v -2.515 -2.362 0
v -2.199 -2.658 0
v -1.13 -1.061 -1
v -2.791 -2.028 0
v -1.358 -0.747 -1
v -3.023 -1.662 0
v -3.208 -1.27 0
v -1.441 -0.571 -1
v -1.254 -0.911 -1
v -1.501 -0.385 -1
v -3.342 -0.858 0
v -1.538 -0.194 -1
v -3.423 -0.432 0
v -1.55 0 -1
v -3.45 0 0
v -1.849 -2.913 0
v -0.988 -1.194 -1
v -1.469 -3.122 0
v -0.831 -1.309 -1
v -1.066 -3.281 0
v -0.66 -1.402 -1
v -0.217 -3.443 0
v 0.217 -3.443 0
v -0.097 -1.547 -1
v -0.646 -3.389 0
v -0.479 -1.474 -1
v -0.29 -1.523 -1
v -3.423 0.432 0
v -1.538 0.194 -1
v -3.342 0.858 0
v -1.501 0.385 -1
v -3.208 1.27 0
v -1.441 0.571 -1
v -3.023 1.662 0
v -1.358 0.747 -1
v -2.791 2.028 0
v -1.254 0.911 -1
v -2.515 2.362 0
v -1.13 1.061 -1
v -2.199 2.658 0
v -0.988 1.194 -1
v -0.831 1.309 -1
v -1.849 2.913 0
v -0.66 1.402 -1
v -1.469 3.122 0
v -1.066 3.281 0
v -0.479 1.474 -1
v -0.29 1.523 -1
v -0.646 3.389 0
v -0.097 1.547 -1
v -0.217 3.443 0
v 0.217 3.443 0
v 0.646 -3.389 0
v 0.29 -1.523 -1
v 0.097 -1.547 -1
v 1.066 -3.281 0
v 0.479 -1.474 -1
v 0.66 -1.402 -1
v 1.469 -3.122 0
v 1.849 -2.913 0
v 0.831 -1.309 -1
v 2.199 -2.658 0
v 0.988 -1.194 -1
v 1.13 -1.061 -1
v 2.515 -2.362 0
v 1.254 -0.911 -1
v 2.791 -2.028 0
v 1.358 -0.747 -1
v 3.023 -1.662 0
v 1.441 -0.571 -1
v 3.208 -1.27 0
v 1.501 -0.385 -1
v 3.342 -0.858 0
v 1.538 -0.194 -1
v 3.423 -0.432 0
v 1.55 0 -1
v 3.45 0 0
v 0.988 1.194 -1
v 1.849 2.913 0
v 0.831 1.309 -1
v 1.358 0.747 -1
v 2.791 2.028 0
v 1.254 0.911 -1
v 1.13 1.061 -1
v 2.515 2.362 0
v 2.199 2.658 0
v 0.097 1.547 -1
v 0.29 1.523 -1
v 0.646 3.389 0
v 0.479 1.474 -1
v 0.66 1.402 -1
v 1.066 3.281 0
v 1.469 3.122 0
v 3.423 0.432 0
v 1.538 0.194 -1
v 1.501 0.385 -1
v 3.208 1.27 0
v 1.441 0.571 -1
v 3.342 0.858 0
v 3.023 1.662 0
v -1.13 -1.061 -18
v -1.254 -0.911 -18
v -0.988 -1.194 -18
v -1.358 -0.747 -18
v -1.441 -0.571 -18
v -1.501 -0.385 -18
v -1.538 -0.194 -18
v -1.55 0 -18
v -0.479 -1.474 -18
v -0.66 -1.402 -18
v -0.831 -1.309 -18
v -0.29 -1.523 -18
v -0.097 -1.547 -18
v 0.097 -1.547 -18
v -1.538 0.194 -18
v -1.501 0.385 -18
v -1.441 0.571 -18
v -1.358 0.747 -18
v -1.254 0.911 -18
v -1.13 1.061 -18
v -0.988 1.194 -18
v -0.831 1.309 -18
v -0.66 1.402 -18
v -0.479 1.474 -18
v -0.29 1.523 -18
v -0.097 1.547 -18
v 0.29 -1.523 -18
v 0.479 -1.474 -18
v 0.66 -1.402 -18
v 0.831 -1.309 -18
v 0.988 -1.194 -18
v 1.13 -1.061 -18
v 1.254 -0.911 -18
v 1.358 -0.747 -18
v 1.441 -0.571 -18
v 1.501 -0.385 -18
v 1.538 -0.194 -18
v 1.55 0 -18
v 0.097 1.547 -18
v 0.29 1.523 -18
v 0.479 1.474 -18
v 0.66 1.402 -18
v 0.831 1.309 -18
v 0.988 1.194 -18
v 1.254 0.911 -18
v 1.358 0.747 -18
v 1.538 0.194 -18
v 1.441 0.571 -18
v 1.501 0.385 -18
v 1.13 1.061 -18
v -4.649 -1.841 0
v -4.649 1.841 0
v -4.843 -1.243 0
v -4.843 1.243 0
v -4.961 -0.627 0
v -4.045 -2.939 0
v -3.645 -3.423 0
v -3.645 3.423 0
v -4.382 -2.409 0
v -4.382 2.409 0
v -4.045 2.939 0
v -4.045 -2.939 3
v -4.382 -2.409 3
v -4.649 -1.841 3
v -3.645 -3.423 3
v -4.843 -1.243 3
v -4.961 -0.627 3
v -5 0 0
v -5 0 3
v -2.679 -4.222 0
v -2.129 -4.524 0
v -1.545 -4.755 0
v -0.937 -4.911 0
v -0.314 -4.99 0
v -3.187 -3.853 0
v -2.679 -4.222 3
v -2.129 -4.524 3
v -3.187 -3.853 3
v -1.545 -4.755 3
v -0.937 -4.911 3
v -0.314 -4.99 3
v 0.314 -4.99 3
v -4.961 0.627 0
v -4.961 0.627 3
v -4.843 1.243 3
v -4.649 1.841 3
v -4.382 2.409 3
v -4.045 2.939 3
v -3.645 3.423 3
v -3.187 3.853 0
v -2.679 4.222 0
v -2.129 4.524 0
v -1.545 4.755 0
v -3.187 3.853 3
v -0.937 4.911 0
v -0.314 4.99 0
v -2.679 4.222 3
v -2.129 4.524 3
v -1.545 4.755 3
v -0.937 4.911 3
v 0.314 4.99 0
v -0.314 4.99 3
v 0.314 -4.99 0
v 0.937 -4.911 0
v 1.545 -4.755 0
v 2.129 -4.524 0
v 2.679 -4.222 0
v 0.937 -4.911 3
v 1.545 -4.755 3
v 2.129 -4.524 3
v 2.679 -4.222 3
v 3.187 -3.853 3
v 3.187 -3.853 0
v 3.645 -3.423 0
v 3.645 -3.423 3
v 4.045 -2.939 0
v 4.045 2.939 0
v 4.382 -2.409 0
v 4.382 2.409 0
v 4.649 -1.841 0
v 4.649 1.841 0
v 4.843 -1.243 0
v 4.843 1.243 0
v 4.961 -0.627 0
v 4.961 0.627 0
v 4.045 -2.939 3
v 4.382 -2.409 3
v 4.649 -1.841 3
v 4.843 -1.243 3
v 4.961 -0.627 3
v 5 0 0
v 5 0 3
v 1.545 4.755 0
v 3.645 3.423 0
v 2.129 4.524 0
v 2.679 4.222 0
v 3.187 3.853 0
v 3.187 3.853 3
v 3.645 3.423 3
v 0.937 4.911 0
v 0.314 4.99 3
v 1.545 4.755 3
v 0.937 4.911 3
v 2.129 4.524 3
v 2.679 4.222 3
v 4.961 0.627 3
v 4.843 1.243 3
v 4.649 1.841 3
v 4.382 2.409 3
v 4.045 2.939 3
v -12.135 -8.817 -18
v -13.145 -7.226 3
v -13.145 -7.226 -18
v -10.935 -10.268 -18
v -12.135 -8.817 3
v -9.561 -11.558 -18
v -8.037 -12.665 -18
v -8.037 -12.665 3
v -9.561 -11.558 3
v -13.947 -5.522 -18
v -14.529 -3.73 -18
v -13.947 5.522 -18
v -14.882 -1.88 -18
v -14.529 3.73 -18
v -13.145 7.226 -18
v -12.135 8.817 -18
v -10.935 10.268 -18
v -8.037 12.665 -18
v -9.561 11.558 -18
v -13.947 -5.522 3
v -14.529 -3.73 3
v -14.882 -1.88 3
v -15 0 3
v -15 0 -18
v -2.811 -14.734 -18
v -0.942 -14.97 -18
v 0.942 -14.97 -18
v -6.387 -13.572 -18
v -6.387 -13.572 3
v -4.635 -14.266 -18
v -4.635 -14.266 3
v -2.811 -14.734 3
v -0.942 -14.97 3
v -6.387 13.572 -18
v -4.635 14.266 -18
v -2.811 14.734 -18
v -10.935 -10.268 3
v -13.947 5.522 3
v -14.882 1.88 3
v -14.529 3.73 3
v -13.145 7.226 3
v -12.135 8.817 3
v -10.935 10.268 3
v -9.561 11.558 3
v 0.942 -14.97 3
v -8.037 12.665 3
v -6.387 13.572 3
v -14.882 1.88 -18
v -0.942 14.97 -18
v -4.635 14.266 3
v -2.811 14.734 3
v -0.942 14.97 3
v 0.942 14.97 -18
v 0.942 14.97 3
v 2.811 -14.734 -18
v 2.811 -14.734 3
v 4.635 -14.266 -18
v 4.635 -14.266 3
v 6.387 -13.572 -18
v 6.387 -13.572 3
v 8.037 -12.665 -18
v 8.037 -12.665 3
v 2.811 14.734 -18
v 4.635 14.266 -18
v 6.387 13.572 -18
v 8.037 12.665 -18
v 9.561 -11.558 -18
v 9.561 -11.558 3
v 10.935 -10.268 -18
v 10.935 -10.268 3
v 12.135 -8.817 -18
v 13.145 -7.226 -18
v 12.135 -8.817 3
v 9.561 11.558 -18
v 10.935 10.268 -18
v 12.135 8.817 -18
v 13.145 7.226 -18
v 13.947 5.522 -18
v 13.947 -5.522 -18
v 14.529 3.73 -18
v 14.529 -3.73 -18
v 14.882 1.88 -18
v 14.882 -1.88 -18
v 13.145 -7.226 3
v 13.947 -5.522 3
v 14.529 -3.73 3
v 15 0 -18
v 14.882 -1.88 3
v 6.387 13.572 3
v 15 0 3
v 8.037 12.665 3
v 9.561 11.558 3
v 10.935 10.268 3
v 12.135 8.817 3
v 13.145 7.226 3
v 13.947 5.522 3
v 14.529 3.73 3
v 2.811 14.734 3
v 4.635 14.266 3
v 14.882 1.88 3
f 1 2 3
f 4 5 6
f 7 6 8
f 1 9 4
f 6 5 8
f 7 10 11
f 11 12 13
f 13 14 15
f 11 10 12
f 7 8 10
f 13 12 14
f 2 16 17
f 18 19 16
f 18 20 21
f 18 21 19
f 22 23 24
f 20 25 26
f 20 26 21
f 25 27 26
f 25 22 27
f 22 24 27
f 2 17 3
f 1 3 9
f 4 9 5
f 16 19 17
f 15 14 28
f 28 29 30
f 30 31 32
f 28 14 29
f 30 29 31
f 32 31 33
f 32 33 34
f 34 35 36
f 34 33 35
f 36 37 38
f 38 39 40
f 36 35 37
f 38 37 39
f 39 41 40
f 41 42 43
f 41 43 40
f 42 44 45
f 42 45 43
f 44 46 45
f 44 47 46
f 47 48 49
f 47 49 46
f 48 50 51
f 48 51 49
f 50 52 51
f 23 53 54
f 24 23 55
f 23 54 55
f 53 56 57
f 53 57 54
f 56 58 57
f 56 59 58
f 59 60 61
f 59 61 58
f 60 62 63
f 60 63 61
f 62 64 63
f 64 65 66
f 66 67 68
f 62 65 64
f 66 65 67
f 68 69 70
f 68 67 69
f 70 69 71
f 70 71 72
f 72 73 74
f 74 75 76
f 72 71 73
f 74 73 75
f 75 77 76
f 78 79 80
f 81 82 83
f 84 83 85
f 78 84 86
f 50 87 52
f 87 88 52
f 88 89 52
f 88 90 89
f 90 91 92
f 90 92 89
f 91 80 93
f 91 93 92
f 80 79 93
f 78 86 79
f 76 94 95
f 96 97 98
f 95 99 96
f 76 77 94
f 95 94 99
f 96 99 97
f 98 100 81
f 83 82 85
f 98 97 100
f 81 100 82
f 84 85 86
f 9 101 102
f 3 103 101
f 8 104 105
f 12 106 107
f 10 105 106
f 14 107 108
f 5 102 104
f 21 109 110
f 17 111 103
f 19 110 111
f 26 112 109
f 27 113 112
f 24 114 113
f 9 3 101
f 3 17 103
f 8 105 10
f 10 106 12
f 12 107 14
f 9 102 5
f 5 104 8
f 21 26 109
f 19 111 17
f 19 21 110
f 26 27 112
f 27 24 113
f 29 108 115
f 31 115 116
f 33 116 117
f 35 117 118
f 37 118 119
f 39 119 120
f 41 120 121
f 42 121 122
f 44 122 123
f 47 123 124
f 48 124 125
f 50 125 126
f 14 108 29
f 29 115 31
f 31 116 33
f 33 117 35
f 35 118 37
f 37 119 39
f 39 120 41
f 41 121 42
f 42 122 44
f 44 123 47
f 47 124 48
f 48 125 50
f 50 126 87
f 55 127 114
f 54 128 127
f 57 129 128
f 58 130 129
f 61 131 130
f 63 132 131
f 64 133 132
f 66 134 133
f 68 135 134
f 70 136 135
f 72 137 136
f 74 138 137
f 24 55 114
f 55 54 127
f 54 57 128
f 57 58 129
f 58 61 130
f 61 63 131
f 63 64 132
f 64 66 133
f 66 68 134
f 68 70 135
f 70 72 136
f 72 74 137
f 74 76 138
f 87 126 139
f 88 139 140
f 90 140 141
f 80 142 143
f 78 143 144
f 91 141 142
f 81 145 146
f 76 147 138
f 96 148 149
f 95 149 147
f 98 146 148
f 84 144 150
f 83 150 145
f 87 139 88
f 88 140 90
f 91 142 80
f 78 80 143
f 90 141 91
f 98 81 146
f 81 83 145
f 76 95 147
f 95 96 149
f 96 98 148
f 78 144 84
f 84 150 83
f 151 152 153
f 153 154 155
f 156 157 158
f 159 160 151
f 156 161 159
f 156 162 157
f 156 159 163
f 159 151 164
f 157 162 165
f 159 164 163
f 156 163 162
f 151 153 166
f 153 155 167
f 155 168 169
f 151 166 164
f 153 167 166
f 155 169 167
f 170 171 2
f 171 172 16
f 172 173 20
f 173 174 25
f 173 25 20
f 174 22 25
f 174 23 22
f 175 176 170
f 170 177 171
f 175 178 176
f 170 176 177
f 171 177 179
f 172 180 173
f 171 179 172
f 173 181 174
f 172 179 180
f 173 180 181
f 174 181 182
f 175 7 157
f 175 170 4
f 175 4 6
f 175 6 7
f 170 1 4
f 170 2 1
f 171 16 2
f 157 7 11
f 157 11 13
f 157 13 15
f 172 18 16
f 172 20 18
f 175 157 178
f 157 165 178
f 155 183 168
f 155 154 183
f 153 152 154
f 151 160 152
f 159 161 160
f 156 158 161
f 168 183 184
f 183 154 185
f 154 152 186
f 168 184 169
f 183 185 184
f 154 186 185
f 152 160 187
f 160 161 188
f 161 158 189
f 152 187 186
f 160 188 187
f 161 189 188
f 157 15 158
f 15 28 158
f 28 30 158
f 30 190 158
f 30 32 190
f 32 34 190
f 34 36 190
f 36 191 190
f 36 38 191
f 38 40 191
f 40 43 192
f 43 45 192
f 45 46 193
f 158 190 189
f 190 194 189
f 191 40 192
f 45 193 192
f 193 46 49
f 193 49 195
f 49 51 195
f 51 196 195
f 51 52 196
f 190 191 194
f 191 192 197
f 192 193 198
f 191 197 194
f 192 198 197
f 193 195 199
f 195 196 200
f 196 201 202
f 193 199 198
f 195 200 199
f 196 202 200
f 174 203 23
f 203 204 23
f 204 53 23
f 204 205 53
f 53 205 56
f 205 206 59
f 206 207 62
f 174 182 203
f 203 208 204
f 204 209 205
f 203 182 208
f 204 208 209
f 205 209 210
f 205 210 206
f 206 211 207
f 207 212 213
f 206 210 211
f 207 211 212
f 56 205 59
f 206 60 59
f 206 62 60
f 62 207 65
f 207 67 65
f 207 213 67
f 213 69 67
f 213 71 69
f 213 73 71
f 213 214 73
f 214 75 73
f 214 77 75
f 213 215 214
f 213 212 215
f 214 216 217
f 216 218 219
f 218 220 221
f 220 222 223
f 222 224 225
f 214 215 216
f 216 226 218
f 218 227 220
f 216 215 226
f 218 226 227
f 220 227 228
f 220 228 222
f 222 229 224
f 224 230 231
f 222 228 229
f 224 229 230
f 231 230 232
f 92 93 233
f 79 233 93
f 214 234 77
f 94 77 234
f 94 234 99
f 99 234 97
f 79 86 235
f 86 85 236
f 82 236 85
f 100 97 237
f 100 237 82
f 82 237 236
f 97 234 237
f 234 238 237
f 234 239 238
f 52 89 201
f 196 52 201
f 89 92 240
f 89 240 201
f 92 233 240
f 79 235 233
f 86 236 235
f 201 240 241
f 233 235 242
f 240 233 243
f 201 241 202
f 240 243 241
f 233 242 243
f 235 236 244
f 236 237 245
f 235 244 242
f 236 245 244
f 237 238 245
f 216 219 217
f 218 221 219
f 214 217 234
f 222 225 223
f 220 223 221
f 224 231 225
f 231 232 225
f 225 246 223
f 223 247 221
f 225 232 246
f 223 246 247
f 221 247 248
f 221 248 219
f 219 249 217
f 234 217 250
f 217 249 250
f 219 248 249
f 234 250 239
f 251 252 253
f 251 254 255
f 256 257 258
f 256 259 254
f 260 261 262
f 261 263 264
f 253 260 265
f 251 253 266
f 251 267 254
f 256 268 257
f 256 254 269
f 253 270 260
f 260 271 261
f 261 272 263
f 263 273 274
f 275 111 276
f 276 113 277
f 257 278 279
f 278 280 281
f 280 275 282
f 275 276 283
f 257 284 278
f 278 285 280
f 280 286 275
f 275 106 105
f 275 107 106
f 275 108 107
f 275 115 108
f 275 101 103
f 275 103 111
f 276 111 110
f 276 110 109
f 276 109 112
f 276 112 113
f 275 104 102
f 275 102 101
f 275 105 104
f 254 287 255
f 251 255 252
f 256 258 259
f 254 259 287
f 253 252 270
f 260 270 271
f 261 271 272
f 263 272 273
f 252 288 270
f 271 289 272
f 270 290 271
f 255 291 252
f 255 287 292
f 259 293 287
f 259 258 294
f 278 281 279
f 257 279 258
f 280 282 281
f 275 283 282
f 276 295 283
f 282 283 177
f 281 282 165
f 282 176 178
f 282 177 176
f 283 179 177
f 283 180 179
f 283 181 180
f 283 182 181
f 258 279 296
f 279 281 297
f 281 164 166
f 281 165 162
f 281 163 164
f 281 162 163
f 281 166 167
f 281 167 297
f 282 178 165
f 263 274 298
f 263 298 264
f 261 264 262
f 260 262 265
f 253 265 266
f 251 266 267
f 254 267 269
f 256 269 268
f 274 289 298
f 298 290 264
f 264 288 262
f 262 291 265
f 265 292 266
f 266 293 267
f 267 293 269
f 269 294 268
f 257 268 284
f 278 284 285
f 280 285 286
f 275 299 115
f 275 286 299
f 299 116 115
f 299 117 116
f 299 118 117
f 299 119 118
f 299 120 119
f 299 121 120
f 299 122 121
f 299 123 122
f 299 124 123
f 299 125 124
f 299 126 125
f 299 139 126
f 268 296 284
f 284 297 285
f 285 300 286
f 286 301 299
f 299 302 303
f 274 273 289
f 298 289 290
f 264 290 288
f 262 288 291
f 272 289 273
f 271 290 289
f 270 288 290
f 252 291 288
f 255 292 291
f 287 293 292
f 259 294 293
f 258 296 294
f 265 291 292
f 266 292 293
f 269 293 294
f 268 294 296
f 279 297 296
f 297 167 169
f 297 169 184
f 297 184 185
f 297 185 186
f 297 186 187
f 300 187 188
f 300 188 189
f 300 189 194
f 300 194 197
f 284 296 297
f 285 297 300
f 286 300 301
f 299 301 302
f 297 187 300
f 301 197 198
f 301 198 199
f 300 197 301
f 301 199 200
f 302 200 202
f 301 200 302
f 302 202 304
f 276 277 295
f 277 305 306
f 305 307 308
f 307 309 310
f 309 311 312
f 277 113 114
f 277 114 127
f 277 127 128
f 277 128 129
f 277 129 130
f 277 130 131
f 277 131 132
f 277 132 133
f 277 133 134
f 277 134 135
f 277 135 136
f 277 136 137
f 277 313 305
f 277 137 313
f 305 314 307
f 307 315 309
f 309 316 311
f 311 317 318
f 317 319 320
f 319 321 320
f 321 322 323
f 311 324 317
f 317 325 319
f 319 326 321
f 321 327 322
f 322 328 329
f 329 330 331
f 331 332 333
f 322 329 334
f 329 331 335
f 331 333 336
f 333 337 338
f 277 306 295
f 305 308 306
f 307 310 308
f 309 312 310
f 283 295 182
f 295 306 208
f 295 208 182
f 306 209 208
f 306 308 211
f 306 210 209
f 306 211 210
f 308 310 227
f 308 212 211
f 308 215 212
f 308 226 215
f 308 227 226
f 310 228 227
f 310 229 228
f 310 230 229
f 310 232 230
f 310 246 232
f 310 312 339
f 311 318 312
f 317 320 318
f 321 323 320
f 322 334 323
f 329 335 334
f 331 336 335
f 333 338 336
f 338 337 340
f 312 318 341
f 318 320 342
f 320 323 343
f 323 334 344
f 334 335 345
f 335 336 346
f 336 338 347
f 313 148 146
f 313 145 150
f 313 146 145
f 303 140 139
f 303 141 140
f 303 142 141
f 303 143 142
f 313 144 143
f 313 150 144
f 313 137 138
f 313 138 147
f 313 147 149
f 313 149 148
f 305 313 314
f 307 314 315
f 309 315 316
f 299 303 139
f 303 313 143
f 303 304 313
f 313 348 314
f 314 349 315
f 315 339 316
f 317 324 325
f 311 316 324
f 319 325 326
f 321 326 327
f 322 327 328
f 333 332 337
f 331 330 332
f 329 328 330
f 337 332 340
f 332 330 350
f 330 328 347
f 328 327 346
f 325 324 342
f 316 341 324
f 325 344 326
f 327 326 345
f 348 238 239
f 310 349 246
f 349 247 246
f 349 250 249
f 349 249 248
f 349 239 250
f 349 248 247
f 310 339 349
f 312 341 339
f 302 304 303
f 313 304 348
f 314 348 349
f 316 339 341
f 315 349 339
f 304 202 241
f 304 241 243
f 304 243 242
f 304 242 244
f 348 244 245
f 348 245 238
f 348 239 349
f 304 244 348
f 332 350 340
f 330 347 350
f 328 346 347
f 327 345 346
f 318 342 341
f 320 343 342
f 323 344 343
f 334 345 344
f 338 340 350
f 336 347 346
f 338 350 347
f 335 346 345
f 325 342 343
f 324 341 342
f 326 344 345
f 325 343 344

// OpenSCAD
$fn = 50;

difference() {
	union() {
		translate(v = [0, 0, -18.0]) {
			cylinder(h = 21, r = 15.0);
		}
	}
	union() {
		translate(v = [0, 0, 0]) {
			rotate(a = [0, 0, 0]) {
				difference() {
					union() {
						translate(v = [0, 0, -21.0]) {
							cylinder(h = 21, r = 1.25);
						}
						translate(v = [0, 0, -1.0]) {
							cylinder(h = 1.0, r1 = 1.55, r2 = 3.45);
						}
						translate(v = [0, 0, -21.0]) {
							cylinder(h = 21, r = 1.55);
						}
						translate(v = [0, 0, -21.0]) {
							cylinder(h = 21, r = 1.25);
						}
					}
					union();
				}
			}
		}
		#cylinder(h = 3, r = 5.0);
	}
}
